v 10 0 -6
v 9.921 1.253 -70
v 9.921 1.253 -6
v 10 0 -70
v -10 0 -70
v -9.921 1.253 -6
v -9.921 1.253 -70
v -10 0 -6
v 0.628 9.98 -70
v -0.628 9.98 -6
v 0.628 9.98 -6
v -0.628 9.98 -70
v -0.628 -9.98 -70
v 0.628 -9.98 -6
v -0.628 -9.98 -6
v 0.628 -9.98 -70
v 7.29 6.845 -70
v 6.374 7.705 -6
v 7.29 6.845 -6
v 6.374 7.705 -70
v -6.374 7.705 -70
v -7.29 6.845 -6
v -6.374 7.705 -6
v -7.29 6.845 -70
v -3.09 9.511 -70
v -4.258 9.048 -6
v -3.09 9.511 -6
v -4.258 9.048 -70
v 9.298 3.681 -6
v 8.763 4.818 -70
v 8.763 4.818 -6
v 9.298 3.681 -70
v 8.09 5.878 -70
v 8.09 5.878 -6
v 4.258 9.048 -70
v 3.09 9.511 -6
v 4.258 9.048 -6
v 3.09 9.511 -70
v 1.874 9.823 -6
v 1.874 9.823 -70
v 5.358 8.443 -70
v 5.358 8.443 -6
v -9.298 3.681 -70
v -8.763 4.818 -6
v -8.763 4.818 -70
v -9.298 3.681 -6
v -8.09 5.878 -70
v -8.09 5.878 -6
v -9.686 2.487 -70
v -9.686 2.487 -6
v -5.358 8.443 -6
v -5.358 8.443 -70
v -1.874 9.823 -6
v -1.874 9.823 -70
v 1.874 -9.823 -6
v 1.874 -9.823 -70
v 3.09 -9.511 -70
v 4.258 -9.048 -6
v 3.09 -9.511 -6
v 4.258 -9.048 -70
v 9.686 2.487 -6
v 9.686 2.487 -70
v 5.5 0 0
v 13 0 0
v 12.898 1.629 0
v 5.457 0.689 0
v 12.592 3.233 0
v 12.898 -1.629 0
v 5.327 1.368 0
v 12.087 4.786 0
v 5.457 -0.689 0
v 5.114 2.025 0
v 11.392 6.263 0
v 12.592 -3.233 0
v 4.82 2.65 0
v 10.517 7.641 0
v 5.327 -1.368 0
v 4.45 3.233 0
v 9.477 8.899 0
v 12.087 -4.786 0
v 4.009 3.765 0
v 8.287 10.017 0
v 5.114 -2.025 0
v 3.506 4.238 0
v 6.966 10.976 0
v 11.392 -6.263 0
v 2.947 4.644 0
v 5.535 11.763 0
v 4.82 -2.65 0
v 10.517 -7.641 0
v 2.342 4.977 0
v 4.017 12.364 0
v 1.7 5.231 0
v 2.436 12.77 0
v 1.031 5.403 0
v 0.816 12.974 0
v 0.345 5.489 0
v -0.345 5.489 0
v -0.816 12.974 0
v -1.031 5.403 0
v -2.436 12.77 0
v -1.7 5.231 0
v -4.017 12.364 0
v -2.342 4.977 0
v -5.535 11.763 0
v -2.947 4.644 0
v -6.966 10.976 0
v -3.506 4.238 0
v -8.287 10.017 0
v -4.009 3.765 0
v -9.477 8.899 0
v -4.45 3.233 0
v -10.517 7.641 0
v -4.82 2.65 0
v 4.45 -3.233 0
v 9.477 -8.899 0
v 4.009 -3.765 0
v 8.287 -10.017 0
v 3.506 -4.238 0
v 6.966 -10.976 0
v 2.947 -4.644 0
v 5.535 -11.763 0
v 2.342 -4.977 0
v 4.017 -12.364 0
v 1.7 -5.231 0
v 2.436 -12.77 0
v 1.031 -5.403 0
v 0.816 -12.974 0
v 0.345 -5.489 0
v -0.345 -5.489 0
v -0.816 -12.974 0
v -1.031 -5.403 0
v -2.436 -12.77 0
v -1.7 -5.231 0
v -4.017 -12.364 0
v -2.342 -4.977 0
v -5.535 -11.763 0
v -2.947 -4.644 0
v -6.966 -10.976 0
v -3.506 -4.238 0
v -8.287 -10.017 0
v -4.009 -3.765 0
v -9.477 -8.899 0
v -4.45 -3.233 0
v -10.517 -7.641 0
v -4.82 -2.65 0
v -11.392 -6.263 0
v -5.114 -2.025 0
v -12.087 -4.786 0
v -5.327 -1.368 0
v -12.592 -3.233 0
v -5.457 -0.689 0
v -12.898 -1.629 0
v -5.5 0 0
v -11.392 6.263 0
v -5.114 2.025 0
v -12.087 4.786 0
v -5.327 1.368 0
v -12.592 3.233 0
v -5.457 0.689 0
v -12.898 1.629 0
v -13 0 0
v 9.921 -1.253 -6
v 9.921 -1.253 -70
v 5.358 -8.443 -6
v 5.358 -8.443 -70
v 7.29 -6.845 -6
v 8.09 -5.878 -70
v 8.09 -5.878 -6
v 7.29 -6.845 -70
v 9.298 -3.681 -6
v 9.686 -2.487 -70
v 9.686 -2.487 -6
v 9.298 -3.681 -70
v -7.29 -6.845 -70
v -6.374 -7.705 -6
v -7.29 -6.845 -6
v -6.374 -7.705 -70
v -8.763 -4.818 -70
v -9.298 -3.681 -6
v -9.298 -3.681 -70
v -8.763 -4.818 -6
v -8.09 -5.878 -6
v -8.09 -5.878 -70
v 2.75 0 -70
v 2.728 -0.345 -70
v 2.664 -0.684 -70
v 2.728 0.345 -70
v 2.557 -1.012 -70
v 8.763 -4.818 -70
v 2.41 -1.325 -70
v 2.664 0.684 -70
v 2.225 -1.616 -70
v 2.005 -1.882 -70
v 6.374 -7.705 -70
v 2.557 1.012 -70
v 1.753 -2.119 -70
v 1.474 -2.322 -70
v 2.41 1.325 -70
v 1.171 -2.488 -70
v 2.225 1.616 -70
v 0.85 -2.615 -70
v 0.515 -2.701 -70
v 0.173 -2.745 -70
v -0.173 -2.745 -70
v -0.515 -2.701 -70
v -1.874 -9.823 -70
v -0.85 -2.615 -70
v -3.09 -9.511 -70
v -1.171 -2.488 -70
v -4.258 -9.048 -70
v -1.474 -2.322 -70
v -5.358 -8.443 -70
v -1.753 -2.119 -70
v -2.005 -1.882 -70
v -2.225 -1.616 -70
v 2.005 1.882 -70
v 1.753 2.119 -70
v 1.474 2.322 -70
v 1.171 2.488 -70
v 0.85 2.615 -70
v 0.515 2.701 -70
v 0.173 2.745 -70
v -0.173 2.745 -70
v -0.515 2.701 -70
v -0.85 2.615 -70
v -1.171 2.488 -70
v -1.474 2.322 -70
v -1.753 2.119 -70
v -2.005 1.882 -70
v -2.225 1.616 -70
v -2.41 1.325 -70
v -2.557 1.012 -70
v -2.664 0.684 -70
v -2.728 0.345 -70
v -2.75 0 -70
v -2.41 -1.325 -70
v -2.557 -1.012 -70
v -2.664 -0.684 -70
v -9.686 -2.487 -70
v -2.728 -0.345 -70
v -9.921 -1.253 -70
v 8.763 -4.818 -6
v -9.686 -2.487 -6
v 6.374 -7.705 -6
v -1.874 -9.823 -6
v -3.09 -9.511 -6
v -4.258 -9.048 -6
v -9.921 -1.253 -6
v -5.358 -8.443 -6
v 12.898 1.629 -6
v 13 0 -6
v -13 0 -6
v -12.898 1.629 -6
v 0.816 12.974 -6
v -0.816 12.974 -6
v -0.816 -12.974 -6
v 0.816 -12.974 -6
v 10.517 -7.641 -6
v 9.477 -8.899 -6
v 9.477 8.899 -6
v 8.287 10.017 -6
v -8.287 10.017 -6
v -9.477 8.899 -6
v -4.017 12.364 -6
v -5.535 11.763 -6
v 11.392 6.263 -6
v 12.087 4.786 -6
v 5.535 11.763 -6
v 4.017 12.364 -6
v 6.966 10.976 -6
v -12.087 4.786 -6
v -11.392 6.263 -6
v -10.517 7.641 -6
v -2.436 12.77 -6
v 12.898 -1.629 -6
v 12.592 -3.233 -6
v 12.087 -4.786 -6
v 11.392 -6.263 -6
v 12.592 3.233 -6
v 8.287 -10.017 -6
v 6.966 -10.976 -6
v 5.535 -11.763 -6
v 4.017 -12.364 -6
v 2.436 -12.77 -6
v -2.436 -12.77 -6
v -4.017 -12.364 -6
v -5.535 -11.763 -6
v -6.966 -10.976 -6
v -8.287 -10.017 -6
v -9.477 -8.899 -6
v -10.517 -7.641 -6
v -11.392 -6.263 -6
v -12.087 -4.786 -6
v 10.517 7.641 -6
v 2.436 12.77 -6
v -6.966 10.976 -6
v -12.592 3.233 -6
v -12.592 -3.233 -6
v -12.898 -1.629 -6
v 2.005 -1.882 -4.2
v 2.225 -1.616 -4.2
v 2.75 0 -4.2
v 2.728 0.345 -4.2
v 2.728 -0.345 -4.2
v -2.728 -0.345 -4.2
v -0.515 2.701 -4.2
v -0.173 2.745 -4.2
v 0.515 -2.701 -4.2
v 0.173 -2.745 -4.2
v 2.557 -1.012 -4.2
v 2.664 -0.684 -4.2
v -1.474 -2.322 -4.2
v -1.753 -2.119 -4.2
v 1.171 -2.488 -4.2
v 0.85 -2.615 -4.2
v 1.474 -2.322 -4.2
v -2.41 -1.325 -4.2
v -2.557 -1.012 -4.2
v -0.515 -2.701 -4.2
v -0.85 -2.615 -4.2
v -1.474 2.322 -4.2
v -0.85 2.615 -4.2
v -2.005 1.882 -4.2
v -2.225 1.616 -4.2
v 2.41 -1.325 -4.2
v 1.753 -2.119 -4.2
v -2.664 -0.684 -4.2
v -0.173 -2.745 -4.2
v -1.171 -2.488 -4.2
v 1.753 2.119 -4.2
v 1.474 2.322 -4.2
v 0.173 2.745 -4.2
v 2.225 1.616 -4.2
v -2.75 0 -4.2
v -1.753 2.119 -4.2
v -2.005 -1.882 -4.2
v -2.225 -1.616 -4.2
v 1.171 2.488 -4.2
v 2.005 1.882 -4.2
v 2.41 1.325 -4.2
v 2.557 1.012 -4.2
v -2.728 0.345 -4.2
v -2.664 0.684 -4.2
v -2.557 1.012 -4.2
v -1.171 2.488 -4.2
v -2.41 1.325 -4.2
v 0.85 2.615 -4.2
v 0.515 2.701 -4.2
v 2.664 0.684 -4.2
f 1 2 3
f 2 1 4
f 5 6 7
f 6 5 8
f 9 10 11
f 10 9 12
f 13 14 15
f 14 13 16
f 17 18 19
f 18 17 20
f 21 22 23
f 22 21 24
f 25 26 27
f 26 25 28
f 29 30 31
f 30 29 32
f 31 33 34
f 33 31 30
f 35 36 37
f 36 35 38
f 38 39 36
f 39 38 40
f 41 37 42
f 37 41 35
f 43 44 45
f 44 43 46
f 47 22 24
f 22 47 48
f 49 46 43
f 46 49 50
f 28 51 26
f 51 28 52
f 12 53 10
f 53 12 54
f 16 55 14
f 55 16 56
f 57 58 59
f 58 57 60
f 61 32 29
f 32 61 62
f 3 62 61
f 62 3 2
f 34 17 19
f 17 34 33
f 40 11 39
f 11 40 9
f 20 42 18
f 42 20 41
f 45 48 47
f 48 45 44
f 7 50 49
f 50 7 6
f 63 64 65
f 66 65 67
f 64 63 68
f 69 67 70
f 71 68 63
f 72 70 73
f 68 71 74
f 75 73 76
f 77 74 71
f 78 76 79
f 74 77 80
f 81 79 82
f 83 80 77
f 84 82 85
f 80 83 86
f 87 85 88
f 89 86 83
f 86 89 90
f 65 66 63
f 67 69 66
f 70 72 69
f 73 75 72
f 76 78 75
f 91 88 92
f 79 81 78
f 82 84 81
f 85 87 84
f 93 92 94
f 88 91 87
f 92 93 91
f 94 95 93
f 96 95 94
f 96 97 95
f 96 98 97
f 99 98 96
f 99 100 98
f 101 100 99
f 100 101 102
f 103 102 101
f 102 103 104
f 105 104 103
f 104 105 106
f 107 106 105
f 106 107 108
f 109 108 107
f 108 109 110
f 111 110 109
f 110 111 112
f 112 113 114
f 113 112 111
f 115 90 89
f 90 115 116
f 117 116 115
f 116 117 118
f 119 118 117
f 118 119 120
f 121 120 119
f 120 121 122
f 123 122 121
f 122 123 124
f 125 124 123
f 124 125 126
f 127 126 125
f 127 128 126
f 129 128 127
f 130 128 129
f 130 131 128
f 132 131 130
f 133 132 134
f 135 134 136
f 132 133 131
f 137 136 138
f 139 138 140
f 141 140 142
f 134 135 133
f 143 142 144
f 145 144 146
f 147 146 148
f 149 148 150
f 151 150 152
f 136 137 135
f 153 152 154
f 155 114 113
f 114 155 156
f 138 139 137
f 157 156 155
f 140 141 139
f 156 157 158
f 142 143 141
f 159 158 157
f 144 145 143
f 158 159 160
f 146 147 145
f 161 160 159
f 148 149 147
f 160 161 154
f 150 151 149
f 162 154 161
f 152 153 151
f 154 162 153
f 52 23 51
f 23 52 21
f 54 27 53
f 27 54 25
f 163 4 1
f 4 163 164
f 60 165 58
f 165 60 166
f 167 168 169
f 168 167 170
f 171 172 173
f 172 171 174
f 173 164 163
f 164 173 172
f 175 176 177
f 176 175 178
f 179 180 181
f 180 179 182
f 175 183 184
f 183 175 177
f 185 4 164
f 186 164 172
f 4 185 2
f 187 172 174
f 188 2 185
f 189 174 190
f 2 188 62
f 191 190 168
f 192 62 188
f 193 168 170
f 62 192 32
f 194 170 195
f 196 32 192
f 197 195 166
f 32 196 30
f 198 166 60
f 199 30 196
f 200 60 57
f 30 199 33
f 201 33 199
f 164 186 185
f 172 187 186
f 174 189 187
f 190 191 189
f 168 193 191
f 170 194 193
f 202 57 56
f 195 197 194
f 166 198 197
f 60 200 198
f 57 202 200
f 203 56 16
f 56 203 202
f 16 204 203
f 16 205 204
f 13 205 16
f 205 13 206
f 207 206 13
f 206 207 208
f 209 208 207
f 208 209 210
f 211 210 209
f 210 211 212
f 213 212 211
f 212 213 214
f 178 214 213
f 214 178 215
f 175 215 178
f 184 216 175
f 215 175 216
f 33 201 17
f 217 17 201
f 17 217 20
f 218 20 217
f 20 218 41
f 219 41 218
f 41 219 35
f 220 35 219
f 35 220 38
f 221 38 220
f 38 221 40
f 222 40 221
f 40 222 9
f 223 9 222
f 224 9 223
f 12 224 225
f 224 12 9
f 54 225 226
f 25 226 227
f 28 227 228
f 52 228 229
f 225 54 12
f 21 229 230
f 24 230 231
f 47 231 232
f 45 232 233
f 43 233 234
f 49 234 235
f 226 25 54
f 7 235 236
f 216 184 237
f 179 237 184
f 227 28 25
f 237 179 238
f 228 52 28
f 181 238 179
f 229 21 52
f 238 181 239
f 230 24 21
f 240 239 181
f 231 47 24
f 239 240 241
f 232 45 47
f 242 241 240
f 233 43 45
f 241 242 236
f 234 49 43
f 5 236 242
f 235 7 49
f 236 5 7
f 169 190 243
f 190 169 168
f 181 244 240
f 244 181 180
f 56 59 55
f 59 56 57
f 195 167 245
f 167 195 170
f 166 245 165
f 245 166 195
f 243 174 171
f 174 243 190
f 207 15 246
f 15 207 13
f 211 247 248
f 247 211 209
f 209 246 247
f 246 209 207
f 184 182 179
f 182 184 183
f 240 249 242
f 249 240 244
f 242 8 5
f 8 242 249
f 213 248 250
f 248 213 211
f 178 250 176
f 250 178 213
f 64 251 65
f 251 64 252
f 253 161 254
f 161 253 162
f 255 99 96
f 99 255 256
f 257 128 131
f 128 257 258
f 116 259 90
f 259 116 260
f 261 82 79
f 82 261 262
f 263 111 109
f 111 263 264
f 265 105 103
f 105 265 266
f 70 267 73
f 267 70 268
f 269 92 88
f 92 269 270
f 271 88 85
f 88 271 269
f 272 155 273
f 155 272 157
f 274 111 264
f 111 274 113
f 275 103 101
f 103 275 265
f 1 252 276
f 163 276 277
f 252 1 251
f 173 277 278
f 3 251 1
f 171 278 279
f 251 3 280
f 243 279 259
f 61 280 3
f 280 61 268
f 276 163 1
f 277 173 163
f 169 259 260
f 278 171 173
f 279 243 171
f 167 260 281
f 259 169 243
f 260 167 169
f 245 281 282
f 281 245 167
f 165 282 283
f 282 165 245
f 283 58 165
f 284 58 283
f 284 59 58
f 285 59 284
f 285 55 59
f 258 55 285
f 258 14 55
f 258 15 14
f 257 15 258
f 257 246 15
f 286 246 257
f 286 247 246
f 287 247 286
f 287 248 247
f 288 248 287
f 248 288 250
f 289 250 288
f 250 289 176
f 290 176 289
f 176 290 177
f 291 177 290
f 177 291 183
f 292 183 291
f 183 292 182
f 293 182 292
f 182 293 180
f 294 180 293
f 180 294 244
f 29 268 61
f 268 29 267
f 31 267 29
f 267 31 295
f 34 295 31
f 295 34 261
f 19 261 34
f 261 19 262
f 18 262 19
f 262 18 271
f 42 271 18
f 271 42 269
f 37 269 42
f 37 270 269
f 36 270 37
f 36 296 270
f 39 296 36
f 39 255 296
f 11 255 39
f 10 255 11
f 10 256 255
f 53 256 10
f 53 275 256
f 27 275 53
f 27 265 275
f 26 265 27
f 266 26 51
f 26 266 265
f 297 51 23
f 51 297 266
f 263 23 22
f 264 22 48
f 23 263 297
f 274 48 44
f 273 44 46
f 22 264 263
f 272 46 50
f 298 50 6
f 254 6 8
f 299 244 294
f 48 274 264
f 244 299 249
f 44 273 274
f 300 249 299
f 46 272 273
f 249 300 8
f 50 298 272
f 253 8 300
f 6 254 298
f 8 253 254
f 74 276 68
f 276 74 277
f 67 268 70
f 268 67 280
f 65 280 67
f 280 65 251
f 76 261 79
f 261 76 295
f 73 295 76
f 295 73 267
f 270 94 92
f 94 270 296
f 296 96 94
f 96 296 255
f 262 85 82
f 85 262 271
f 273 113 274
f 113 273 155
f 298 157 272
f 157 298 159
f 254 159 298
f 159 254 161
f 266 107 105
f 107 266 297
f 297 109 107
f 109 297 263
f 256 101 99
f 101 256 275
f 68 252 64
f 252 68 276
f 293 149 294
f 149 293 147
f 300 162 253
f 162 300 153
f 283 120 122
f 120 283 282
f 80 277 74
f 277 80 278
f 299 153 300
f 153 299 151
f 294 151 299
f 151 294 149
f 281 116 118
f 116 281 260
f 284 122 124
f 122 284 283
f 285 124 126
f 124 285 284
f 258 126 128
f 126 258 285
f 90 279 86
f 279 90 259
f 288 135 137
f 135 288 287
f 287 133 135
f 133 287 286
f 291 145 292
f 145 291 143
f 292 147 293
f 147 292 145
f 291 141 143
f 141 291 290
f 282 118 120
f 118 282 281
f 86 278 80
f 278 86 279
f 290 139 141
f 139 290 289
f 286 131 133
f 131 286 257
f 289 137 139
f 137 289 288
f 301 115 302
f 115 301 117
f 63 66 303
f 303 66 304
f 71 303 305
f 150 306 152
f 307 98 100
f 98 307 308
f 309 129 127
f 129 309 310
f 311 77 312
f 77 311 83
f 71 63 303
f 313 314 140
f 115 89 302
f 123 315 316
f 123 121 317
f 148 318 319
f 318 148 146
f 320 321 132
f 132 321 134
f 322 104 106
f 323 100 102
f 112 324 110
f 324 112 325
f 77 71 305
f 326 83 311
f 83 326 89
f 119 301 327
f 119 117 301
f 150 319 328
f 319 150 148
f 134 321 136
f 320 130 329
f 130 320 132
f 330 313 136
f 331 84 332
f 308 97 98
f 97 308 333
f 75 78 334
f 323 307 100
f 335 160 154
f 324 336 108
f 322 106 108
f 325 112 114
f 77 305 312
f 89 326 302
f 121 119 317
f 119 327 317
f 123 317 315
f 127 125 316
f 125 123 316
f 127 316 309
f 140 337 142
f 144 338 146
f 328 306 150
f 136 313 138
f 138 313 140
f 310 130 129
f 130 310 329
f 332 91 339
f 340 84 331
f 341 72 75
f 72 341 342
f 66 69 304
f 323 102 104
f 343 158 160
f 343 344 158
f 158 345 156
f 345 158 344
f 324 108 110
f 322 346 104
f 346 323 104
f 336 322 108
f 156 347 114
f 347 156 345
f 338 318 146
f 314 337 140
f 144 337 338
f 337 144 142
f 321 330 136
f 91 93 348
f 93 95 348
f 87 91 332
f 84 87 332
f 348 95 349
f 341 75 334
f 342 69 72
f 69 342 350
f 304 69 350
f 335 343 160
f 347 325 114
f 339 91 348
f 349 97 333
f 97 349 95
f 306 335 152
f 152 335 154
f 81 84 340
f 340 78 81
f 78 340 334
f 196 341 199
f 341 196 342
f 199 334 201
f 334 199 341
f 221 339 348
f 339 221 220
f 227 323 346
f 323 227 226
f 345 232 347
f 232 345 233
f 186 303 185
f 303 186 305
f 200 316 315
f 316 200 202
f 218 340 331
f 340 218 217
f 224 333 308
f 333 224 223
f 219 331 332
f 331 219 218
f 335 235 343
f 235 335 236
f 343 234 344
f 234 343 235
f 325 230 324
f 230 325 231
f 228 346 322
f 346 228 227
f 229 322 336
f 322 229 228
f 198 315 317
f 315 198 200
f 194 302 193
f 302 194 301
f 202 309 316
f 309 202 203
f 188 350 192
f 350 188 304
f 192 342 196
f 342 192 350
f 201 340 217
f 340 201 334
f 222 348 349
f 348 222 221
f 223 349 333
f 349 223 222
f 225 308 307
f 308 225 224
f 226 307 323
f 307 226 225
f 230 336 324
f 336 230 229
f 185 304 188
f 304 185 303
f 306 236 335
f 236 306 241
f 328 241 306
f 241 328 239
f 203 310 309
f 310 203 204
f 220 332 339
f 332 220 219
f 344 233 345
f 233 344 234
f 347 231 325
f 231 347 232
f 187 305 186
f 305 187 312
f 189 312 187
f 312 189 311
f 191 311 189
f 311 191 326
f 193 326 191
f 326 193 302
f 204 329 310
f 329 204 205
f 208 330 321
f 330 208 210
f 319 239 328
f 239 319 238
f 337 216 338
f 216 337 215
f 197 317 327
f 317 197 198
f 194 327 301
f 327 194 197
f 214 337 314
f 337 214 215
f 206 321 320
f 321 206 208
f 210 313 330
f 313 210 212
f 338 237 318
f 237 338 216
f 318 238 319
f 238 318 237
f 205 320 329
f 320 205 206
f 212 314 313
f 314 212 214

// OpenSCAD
$fn = 50;


difference() {
	union() {
		translate(v = [0, 0, -70.0000000000]) {
			cylinder(h = 70, r = 10.0000000000);
		}
		translate(v = [0, 0, -6.0000000000]) {
			cylinder(h = 6, r = 13.0000000000);
		}
	}
	union() {
		translate(v = [0, 0, 0]) {
			rotate(a = [0, 0, 0]) {
				difference() {
					union() {
						#translate(v = [0, 0, -70.0000000000]) {
							cylinder(h = 70, r = 2.2500000000);
						}
						#translate(v = [0, 0, -4.2000000000]) {
							cylinder(h = 4.2000000000, r1 = 2.7500000000, r2 = 5.5000000000);
						}
						#translate(v = [0, 0, -70.0000000000]) {
							cylinder(h = 70, r = 2.7500000000);
						}
						#translate(v = [0, 0, -70.0000000000]) {
							cylinder(h = 70, r = 2.2500000000);
						}
					}
					union();
				}
			}
		}
	}
}
